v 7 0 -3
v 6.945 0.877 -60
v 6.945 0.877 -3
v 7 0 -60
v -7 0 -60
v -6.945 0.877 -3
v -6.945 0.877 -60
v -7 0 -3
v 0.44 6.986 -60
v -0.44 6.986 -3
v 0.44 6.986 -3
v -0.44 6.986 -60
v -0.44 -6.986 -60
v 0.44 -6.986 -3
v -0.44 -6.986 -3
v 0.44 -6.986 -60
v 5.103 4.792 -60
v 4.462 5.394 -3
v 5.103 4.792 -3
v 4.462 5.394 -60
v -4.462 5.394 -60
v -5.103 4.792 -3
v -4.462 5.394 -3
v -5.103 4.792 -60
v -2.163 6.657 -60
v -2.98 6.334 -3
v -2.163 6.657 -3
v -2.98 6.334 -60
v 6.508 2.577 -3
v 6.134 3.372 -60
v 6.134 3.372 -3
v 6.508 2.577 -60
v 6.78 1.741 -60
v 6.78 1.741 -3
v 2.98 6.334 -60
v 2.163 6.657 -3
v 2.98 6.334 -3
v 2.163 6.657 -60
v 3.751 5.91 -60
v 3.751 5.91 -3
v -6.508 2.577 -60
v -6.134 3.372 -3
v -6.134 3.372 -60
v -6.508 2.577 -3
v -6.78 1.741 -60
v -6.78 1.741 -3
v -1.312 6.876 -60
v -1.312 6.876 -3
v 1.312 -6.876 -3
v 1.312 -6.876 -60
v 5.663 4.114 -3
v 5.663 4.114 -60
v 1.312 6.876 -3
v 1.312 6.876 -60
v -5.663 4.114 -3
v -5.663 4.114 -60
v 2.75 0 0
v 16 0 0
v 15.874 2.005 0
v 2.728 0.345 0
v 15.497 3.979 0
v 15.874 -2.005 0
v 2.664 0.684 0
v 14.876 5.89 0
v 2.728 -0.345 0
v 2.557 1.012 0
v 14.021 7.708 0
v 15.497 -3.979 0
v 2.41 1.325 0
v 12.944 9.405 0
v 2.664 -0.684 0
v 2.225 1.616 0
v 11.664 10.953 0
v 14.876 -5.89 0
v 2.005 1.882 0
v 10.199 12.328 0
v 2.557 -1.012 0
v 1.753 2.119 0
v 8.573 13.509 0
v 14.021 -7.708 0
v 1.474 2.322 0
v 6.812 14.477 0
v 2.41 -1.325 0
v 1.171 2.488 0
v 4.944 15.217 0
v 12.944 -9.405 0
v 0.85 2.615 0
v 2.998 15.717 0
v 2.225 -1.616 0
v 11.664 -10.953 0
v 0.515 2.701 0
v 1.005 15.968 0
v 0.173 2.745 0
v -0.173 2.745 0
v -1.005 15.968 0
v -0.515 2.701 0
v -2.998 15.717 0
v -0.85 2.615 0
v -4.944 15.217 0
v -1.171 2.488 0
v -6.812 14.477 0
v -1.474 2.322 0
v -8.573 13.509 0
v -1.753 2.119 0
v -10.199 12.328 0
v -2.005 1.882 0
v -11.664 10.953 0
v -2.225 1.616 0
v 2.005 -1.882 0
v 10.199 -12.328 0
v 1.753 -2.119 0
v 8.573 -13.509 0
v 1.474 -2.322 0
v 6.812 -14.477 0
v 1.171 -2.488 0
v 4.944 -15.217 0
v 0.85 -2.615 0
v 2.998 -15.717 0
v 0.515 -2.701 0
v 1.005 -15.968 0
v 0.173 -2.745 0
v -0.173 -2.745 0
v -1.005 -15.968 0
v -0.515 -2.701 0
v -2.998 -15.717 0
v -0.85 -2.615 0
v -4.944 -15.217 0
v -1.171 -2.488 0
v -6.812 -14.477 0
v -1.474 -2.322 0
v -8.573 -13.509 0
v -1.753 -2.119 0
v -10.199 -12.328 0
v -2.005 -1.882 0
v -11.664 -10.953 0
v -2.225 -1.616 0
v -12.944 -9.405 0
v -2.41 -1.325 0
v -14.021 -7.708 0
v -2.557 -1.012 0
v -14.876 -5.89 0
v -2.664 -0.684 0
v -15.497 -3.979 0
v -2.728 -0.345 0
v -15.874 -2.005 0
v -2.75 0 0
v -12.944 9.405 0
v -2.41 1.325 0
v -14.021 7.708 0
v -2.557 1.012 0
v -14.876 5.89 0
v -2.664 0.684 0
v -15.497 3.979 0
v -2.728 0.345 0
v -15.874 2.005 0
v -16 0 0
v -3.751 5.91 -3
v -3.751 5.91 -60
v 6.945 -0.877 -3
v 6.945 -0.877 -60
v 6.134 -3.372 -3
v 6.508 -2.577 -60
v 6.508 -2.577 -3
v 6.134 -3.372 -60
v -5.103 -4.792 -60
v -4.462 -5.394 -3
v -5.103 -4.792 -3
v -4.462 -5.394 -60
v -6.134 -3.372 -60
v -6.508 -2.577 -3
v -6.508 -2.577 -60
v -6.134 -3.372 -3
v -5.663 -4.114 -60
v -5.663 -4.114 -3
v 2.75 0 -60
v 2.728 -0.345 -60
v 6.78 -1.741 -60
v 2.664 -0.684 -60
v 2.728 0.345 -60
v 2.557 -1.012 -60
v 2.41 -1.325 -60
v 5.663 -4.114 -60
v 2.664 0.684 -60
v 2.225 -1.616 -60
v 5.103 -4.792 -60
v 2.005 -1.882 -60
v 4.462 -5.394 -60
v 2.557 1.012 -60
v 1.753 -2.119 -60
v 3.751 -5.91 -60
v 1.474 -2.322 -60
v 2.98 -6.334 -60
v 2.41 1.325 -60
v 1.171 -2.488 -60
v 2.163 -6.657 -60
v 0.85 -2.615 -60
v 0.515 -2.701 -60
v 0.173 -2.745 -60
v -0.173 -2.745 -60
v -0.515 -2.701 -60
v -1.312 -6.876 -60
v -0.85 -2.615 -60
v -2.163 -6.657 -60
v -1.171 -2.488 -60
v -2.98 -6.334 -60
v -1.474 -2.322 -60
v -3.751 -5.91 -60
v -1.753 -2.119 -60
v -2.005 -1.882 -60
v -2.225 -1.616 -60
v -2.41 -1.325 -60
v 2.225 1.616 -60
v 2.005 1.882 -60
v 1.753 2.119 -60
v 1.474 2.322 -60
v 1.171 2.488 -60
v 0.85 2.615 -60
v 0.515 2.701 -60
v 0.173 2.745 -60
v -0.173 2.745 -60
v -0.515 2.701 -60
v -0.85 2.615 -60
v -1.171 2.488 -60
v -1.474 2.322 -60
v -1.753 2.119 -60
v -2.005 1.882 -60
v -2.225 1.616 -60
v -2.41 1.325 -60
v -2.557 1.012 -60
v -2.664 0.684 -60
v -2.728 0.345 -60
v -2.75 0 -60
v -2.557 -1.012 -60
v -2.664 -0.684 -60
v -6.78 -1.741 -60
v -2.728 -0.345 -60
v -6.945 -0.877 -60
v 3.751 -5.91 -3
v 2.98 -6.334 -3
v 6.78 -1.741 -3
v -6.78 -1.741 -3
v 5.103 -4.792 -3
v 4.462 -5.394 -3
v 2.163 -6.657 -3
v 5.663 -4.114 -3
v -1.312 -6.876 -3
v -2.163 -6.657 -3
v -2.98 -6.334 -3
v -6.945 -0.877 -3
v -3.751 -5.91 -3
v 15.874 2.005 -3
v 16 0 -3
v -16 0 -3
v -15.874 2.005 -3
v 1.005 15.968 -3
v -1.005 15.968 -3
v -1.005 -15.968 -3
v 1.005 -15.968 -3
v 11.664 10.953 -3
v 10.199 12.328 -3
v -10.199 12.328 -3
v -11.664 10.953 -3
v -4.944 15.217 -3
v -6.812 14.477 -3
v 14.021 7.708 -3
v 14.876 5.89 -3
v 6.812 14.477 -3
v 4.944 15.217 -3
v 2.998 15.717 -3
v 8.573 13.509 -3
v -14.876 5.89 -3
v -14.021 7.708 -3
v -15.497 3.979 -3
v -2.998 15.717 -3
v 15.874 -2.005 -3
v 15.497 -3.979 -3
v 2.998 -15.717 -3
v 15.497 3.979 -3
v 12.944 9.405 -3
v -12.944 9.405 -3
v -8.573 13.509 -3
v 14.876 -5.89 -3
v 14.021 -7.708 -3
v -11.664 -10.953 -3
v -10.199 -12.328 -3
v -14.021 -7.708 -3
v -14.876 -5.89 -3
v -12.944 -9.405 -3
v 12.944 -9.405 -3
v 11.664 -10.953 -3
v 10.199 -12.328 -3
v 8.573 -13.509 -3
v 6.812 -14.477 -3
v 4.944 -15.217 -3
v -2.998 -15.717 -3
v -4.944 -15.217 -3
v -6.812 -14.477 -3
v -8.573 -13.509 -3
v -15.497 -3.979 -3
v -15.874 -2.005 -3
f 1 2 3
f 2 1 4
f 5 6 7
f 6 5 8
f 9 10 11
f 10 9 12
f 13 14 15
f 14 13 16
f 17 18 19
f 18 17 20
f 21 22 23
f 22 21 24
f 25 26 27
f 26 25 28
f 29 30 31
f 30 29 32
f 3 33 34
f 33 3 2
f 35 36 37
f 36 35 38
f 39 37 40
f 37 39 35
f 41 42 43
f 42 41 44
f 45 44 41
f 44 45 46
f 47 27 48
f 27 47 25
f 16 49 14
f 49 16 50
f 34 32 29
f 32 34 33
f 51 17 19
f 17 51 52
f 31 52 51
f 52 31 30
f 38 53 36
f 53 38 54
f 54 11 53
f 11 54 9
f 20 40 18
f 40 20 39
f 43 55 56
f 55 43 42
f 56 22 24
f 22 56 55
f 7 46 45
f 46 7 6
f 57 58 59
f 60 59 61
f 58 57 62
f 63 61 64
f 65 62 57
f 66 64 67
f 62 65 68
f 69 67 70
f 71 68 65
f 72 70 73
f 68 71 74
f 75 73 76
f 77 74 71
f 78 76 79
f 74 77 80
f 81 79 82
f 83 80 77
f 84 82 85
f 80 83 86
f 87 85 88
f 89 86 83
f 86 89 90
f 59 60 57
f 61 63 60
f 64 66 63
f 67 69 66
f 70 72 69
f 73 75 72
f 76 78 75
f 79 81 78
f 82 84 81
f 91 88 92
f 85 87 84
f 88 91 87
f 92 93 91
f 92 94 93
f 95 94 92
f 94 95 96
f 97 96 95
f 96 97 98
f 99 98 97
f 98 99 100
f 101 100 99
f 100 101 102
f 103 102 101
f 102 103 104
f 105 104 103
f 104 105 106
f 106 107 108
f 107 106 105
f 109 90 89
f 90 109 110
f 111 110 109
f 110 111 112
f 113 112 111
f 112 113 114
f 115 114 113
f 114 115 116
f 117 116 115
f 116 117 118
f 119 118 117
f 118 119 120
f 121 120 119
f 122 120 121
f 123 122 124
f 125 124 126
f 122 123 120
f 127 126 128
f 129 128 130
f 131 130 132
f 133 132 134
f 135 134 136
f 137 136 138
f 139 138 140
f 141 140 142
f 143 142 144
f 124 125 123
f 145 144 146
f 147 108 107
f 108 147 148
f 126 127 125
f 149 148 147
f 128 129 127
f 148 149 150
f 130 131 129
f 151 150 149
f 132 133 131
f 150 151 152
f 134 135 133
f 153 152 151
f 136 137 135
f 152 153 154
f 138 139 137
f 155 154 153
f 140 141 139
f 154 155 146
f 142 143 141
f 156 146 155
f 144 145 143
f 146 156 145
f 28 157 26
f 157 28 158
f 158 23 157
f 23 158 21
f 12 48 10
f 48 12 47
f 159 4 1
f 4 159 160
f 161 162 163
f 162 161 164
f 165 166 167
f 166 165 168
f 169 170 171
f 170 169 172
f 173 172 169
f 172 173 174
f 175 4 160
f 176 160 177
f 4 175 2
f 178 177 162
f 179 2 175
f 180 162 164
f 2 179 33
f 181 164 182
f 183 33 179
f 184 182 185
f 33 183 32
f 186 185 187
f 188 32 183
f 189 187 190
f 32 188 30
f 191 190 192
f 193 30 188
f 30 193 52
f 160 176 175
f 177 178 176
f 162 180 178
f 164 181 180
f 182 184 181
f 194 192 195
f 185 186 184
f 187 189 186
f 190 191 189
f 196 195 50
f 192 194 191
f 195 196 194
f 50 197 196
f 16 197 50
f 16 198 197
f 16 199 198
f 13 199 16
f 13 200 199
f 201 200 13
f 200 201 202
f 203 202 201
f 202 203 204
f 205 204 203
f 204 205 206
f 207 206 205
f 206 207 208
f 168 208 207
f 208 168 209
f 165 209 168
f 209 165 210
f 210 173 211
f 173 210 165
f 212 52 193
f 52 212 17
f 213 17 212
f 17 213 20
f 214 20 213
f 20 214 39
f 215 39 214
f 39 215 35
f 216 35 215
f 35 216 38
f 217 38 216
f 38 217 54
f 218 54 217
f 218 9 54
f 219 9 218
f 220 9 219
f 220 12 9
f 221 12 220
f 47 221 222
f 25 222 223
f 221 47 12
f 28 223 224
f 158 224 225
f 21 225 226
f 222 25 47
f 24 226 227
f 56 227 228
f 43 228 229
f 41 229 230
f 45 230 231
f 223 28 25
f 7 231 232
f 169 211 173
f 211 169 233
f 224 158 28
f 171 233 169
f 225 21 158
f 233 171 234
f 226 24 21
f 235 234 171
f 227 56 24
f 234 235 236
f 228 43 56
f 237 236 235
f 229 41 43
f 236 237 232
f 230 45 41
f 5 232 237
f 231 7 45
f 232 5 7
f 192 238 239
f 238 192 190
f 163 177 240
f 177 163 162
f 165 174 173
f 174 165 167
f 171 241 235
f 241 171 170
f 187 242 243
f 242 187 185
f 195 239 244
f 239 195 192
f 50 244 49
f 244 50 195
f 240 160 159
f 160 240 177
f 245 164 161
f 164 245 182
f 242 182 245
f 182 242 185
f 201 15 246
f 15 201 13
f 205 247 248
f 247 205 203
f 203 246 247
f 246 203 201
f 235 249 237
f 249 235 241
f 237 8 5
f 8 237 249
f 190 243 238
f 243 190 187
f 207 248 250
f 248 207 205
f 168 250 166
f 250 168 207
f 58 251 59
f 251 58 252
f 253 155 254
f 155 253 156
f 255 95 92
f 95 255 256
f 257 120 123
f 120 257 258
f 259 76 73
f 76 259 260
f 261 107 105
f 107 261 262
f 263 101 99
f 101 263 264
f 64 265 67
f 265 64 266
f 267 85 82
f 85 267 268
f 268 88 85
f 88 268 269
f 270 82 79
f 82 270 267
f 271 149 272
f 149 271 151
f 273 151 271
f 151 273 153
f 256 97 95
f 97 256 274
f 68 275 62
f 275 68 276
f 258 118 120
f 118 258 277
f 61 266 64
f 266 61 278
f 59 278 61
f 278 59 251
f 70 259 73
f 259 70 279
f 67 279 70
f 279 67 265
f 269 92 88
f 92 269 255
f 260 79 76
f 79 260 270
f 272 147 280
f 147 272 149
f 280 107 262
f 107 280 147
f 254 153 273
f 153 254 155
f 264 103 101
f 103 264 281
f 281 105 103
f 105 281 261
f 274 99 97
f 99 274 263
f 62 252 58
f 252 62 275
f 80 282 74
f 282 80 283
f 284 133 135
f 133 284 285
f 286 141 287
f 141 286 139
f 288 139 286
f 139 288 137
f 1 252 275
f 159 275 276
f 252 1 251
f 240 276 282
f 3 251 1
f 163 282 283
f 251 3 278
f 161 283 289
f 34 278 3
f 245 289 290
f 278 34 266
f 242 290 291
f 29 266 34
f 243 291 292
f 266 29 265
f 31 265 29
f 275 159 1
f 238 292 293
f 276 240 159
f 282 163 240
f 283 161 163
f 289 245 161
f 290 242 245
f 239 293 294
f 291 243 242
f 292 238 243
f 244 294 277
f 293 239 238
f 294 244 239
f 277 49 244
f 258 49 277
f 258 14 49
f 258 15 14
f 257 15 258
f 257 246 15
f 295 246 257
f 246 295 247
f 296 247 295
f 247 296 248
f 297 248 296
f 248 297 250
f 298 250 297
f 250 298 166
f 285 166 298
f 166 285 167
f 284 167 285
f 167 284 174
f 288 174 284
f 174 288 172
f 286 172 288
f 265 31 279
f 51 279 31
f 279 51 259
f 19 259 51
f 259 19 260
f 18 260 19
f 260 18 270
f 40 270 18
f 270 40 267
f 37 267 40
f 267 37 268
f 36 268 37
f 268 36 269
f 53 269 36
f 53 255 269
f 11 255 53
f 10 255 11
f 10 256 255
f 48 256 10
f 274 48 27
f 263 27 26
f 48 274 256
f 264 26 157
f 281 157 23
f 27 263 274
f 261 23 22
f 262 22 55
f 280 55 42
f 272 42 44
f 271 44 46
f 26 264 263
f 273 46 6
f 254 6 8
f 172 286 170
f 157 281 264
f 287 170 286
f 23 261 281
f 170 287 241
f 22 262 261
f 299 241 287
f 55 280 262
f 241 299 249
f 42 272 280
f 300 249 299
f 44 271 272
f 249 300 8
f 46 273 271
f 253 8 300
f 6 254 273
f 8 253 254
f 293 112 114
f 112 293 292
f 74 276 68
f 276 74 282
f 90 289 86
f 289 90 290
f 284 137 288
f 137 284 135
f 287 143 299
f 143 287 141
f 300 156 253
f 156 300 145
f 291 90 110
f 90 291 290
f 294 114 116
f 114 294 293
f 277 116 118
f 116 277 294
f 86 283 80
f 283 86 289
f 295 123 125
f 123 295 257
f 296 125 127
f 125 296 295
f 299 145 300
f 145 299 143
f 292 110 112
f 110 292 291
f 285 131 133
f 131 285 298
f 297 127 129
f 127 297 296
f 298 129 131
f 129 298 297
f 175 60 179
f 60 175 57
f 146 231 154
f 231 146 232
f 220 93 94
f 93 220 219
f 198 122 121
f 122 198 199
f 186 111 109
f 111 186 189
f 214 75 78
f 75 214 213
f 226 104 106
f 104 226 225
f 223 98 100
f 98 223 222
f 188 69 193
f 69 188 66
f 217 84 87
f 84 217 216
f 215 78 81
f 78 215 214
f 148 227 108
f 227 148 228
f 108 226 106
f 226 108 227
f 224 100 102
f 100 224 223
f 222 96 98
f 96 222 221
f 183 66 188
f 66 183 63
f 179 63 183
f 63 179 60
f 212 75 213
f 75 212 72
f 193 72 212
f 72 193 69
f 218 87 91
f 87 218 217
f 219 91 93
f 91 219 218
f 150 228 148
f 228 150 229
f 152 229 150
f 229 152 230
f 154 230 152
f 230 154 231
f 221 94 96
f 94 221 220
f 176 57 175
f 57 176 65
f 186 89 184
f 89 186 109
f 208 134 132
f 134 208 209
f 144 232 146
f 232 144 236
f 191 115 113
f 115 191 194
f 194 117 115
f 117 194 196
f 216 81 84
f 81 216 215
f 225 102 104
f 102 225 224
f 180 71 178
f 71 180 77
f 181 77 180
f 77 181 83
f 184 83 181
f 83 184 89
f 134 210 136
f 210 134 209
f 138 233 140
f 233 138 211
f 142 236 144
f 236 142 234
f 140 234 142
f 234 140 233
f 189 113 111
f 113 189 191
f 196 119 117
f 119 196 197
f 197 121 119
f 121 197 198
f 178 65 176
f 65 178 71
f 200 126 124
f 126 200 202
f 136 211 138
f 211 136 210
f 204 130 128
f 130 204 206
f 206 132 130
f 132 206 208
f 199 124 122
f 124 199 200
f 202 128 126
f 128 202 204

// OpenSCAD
$fn = 50;


difference() {
	union() {
		translate(v = [0, 0, -60.0000000000]) {
			cylinder(h = 60, r = 7.0000000000);
		}
		translate(v = [0, 0, -3.0000000000]) {
			cylinder(h = 3, r = 16.0000000000);
		}
	}
	union() {
		#translate(v = [0, 0, -60]) {
			cylinder(h = 60, r = 2.7500000000);
		}
	}
}
